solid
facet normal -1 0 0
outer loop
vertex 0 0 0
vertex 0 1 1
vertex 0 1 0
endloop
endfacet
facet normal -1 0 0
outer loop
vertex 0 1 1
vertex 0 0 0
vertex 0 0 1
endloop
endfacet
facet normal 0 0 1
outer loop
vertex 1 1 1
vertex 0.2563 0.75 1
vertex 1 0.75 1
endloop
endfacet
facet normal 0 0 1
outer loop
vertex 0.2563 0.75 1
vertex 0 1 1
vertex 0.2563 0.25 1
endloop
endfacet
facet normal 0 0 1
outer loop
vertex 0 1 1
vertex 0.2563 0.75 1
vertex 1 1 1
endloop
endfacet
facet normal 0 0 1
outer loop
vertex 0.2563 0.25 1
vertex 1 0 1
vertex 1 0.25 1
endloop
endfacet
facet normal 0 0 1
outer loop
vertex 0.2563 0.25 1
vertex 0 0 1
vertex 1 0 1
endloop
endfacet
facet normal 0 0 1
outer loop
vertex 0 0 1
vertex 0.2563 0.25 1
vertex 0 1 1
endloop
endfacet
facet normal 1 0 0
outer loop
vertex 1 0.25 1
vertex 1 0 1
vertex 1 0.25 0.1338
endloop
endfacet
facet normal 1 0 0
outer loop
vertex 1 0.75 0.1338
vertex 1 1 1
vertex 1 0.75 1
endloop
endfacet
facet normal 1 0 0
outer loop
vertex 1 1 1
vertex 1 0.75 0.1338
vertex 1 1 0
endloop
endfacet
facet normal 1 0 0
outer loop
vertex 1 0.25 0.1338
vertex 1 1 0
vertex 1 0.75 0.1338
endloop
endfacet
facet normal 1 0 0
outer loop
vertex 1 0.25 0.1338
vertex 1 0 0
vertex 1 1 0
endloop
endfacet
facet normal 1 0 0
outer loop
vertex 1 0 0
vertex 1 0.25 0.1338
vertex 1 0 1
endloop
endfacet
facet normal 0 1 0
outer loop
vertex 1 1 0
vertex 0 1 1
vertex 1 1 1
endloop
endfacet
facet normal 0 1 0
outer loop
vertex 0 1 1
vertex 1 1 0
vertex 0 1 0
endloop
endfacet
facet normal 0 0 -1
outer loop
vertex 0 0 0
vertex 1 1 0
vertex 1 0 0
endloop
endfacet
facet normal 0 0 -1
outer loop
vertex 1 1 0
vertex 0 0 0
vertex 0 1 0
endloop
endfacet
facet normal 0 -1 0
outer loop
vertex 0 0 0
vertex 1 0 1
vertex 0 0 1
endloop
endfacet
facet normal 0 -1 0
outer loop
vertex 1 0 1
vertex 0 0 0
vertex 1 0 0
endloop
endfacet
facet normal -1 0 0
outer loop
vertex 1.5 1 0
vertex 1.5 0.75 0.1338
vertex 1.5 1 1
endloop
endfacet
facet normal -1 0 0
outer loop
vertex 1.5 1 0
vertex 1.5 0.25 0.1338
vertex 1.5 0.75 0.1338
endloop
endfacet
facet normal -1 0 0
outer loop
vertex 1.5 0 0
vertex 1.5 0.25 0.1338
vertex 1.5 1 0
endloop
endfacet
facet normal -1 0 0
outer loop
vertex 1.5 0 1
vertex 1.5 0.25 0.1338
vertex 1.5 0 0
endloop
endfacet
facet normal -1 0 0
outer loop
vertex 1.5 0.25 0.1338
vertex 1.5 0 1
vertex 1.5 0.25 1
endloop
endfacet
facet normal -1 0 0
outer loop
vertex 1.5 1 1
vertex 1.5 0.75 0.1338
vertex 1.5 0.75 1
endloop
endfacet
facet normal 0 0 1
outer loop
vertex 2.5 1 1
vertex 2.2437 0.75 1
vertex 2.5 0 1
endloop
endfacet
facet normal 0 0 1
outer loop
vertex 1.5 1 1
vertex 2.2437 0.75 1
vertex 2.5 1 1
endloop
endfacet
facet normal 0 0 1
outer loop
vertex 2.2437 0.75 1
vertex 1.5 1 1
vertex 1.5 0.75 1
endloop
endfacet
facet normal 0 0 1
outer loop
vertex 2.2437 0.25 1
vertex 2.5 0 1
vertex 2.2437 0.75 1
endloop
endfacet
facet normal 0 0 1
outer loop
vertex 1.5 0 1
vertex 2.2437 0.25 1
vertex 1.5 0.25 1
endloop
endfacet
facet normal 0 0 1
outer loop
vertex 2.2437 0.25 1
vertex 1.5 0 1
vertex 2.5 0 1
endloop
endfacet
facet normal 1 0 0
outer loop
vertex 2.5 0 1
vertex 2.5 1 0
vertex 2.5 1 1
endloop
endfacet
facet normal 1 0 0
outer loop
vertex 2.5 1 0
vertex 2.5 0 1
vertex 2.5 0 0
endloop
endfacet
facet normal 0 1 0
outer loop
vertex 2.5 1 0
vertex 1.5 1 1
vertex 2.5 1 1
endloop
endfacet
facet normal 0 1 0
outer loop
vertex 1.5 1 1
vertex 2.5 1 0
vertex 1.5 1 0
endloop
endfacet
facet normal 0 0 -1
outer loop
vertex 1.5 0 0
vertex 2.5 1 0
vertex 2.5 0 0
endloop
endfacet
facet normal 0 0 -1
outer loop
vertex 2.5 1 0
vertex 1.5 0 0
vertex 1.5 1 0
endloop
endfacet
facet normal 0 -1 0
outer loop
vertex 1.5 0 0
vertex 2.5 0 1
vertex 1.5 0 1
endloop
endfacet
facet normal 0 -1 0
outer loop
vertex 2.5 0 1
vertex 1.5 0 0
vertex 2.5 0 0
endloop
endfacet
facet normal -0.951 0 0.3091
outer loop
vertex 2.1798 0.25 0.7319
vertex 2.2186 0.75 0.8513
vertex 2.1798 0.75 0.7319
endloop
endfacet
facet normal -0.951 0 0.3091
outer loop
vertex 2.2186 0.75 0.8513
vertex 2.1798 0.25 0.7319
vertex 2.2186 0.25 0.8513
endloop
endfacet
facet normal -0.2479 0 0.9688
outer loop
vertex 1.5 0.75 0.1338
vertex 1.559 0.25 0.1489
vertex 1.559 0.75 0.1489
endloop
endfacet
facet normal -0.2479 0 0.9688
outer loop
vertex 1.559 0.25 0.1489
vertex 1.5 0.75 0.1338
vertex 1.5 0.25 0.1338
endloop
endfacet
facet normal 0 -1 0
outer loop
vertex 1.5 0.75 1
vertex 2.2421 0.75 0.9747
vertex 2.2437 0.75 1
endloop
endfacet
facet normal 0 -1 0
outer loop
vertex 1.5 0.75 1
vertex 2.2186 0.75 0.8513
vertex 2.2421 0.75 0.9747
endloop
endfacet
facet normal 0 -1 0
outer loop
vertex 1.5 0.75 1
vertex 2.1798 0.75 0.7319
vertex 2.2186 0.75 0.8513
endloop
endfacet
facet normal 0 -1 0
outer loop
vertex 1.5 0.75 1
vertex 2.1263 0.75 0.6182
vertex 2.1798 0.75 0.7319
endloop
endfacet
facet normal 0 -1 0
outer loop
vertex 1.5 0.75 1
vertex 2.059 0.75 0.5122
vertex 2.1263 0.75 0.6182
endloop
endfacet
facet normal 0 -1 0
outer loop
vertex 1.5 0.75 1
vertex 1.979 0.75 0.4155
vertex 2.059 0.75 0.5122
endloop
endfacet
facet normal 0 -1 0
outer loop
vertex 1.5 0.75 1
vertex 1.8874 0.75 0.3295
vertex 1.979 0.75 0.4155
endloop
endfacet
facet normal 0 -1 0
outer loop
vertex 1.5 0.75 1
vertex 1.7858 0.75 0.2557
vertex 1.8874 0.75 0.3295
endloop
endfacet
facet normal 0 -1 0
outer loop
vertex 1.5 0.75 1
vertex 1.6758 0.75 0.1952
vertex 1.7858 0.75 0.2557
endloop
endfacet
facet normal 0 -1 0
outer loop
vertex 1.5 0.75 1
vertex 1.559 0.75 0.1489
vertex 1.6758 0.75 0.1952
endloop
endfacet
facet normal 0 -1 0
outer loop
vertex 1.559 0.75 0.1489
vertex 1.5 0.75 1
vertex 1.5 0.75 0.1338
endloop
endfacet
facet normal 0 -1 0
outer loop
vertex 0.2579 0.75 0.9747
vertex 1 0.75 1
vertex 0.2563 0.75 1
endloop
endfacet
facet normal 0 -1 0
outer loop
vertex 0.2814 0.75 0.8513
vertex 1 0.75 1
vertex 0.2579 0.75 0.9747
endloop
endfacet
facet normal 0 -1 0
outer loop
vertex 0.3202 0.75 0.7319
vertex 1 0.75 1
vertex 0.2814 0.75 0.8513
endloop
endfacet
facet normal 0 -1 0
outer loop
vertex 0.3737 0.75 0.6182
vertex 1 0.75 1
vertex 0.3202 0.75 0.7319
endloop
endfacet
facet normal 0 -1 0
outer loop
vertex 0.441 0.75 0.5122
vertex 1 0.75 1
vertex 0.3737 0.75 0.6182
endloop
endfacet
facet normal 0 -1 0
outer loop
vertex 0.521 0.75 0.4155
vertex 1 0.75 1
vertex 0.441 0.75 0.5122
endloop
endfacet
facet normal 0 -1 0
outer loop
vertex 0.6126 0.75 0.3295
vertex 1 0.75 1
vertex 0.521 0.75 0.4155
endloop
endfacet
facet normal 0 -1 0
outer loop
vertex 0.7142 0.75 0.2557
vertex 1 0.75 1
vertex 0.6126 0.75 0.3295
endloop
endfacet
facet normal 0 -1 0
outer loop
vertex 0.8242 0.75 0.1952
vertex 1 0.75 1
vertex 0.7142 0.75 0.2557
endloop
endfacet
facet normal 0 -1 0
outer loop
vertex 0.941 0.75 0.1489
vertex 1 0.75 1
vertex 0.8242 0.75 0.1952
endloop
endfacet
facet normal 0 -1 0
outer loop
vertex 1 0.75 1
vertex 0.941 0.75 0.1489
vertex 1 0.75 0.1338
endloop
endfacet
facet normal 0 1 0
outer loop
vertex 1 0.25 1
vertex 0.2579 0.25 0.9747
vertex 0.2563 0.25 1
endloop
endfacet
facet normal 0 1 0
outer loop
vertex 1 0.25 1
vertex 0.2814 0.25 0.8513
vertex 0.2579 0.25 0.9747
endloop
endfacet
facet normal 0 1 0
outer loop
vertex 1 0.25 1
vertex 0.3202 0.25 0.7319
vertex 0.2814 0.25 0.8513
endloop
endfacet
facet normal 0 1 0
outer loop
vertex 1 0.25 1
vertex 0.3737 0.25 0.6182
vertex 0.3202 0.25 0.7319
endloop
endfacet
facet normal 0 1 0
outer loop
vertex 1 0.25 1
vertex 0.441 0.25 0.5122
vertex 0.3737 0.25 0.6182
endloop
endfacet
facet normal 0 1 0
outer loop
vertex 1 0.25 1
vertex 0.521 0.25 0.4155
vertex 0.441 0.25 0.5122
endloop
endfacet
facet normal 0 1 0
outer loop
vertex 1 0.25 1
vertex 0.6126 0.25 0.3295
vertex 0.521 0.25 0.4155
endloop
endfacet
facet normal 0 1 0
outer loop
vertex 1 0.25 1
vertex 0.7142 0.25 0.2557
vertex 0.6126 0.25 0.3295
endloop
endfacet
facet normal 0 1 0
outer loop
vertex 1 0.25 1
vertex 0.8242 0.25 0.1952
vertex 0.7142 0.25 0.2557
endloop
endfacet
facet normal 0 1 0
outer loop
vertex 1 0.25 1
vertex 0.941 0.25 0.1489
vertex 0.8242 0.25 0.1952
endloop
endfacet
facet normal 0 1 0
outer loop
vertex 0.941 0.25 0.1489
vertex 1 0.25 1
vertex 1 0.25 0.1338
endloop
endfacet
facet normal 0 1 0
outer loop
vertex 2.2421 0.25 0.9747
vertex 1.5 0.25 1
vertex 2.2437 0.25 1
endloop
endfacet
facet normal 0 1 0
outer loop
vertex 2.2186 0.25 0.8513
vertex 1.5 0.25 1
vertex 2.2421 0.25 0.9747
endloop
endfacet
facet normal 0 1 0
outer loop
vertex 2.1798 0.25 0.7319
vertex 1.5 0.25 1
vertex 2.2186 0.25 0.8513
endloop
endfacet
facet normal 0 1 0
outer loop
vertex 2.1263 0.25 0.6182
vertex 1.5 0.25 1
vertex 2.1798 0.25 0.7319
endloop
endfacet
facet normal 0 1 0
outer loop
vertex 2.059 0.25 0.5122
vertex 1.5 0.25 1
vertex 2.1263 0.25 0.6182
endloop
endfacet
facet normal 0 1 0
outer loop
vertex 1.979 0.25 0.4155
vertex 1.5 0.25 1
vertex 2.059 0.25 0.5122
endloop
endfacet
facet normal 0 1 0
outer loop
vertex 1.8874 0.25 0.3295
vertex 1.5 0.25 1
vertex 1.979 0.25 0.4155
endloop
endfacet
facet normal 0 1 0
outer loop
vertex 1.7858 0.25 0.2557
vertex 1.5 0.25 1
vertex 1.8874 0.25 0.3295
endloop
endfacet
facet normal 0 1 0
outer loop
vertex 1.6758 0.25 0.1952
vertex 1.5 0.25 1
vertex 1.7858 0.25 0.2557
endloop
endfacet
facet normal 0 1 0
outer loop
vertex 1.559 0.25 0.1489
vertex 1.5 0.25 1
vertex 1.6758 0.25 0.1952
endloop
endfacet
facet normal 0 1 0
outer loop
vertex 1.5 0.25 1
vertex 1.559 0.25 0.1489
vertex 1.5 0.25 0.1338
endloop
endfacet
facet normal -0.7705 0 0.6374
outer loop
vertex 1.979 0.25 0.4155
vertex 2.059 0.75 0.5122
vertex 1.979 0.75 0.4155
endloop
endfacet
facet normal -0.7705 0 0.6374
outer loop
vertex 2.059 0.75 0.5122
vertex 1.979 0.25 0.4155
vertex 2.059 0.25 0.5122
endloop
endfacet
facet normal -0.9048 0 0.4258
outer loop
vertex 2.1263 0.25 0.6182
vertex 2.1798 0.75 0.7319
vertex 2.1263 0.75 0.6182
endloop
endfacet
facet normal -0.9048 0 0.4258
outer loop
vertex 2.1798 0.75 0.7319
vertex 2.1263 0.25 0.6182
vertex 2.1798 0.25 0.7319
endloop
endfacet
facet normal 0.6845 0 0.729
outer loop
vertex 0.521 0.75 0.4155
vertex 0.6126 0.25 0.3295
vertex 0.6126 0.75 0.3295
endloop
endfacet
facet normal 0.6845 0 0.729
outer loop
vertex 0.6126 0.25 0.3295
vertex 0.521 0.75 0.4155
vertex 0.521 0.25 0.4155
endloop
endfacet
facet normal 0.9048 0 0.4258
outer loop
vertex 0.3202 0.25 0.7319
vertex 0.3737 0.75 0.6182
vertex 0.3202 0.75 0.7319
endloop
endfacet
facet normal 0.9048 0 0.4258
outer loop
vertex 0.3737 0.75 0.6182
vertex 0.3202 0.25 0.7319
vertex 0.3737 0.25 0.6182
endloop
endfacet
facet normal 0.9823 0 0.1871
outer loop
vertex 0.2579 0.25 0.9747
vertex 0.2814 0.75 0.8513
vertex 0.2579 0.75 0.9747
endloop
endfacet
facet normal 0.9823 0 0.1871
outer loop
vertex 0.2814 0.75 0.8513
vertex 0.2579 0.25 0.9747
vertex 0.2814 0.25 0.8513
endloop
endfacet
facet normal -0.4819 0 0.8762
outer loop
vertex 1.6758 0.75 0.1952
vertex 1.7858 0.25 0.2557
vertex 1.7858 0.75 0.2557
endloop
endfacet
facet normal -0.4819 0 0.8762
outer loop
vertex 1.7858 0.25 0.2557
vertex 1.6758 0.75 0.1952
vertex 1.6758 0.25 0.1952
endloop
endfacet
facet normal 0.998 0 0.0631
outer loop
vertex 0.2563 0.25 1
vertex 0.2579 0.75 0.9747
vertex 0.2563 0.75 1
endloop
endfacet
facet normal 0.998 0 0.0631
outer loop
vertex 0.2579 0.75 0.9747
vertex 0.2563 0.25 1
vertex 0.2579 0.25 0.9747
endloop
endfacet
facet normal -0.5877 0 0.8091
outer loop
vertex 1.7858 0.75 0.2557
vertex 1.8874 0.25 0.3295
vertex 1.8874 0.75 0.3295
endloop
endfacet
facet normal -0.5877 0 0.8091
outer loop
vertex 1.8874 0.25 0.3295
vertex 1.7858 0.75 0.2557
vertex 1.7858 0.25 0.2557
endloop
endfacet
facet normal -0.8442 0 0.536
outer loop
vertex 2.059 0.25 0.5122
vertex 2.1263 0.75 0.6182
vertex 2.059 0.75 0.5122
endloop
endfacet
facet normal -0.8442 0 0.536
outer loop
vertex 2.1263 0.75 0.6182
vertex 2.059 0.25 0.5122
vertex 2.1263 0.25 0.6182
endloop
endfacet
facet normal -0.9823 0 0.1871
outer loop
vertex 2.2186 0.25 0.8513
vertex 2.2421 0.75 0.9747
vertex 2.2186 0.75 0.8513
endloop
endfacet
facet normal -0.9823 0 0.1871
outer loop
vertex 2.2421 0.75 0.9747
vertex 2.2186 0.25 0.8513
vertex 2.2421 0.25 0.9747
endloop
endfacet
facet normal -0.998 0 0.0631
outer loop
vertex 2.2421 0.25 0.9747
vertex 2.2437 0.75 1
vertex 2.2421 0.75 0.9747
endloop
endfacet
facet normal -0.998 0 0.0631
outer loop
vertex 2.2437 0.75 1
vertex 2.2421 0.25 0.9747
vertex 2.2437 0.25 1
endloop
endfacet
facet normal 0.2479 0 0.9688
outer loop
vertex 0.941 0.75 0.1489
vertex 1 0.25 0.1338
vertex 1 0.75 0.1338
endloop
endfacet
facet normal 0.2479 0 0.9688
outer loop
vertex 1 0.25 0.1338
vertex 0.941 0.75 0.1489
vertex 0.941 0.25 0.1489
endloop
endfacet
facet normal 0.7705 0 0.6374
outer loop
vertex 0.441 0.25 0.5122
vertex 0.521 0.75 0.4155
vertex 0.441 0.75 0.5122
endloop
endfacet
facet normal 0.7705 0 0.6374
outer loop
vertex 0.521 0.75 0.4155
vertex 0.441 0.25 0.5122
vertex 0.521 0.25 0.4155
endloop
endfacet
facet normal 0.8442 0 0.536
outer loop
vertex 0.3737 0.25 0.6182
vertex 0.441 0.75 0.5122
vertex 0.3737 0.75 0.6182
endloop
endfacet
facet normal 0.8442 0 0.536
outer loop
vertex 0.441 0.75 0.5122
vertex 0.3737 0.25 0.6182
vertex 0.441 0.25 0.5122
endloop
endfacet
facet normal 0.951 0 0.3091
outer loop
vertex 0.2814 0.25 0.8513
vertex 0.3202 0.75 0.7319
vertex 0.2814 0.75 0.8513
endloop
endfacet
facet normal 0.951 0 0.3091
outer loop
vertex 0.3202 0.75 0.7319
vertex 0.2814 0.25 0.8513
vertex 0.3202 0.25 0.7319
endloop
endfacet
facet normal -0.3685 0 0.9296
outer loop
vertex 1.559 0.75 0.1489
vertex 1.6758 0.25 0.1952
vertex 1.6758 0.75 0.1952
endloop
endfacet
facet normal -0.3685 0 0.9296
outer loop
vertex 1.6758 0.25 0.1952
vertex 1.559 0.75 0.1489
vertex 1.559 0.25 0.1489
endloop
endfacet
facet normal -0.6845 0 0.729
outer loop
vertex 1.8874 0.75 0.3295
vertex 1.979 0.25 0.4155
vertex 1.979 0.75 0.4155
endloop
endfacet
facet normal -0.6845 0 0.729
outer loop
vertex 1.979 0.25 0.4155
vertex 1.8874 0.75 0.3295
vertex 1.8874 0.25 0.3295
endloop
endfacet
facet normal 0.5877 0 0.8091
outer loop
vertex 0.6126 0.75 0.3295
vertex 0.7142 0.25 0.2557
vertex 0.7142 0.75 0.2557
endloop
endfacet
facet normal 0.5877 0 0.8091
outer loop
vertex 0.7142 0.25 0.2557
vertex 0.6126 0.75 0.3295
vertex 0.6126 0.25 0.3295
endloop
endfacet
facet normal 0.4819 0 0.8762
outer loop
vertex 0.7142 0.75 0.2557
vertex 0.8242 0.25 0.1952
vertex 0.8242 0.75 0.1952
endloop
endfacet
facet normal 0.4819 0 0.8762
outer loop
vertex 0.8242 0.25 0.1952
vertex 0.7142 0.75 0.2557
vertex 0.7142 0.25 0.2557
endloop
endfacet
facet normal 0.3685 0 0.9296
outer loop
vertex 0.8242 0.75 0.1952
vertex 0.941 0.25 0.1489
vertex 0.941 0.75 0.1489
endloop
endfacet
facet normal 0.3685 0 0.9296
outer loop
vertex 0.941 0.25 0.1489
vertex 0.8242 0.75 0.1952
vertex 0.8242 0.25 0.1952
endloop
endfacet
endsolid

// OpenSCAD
// Generated by SolidPython 1.1.1 on 2021-10-28 00:15:49
$fn = 50;


difference() {
	union() {
		cube();
		translate(v = [1.5000000000, 0, 0]) {
			cube();
		}
	}
	translate(v = [1.2500000000, 0.7500000000, 1.1000000000]) {
		rotate(a = [90, 0, 0]) {
			cylinder(h = 0.5000000000, r = 1);
		}
	}
}
/***********************************************
*********      SolidPython code:      **********
************************************************
 
# SolidPython example code 
# Brygg Ullmer, Clemson University

from solid import *        # load in SolidPython/SCAD support code

c1 = cube()
c2 = translate([1.5, 0, 0])(c1)
outGeom = c1 + c2

y1 = cylinder(r=1, h=.5)
y2 = rotate([90,0,0])(y1)
y3 = translate([1.25,.75,1.1])(y2)
outGeom -= y3

radialSegments = 50; hdr = '$fn = %s;' % radialSegments # create a header for the export
scad_render_to_file(outGeom, 'exSolid05.scad', file_header=hdr) # write the .scad file

### end ###

 
 
************************************************/
